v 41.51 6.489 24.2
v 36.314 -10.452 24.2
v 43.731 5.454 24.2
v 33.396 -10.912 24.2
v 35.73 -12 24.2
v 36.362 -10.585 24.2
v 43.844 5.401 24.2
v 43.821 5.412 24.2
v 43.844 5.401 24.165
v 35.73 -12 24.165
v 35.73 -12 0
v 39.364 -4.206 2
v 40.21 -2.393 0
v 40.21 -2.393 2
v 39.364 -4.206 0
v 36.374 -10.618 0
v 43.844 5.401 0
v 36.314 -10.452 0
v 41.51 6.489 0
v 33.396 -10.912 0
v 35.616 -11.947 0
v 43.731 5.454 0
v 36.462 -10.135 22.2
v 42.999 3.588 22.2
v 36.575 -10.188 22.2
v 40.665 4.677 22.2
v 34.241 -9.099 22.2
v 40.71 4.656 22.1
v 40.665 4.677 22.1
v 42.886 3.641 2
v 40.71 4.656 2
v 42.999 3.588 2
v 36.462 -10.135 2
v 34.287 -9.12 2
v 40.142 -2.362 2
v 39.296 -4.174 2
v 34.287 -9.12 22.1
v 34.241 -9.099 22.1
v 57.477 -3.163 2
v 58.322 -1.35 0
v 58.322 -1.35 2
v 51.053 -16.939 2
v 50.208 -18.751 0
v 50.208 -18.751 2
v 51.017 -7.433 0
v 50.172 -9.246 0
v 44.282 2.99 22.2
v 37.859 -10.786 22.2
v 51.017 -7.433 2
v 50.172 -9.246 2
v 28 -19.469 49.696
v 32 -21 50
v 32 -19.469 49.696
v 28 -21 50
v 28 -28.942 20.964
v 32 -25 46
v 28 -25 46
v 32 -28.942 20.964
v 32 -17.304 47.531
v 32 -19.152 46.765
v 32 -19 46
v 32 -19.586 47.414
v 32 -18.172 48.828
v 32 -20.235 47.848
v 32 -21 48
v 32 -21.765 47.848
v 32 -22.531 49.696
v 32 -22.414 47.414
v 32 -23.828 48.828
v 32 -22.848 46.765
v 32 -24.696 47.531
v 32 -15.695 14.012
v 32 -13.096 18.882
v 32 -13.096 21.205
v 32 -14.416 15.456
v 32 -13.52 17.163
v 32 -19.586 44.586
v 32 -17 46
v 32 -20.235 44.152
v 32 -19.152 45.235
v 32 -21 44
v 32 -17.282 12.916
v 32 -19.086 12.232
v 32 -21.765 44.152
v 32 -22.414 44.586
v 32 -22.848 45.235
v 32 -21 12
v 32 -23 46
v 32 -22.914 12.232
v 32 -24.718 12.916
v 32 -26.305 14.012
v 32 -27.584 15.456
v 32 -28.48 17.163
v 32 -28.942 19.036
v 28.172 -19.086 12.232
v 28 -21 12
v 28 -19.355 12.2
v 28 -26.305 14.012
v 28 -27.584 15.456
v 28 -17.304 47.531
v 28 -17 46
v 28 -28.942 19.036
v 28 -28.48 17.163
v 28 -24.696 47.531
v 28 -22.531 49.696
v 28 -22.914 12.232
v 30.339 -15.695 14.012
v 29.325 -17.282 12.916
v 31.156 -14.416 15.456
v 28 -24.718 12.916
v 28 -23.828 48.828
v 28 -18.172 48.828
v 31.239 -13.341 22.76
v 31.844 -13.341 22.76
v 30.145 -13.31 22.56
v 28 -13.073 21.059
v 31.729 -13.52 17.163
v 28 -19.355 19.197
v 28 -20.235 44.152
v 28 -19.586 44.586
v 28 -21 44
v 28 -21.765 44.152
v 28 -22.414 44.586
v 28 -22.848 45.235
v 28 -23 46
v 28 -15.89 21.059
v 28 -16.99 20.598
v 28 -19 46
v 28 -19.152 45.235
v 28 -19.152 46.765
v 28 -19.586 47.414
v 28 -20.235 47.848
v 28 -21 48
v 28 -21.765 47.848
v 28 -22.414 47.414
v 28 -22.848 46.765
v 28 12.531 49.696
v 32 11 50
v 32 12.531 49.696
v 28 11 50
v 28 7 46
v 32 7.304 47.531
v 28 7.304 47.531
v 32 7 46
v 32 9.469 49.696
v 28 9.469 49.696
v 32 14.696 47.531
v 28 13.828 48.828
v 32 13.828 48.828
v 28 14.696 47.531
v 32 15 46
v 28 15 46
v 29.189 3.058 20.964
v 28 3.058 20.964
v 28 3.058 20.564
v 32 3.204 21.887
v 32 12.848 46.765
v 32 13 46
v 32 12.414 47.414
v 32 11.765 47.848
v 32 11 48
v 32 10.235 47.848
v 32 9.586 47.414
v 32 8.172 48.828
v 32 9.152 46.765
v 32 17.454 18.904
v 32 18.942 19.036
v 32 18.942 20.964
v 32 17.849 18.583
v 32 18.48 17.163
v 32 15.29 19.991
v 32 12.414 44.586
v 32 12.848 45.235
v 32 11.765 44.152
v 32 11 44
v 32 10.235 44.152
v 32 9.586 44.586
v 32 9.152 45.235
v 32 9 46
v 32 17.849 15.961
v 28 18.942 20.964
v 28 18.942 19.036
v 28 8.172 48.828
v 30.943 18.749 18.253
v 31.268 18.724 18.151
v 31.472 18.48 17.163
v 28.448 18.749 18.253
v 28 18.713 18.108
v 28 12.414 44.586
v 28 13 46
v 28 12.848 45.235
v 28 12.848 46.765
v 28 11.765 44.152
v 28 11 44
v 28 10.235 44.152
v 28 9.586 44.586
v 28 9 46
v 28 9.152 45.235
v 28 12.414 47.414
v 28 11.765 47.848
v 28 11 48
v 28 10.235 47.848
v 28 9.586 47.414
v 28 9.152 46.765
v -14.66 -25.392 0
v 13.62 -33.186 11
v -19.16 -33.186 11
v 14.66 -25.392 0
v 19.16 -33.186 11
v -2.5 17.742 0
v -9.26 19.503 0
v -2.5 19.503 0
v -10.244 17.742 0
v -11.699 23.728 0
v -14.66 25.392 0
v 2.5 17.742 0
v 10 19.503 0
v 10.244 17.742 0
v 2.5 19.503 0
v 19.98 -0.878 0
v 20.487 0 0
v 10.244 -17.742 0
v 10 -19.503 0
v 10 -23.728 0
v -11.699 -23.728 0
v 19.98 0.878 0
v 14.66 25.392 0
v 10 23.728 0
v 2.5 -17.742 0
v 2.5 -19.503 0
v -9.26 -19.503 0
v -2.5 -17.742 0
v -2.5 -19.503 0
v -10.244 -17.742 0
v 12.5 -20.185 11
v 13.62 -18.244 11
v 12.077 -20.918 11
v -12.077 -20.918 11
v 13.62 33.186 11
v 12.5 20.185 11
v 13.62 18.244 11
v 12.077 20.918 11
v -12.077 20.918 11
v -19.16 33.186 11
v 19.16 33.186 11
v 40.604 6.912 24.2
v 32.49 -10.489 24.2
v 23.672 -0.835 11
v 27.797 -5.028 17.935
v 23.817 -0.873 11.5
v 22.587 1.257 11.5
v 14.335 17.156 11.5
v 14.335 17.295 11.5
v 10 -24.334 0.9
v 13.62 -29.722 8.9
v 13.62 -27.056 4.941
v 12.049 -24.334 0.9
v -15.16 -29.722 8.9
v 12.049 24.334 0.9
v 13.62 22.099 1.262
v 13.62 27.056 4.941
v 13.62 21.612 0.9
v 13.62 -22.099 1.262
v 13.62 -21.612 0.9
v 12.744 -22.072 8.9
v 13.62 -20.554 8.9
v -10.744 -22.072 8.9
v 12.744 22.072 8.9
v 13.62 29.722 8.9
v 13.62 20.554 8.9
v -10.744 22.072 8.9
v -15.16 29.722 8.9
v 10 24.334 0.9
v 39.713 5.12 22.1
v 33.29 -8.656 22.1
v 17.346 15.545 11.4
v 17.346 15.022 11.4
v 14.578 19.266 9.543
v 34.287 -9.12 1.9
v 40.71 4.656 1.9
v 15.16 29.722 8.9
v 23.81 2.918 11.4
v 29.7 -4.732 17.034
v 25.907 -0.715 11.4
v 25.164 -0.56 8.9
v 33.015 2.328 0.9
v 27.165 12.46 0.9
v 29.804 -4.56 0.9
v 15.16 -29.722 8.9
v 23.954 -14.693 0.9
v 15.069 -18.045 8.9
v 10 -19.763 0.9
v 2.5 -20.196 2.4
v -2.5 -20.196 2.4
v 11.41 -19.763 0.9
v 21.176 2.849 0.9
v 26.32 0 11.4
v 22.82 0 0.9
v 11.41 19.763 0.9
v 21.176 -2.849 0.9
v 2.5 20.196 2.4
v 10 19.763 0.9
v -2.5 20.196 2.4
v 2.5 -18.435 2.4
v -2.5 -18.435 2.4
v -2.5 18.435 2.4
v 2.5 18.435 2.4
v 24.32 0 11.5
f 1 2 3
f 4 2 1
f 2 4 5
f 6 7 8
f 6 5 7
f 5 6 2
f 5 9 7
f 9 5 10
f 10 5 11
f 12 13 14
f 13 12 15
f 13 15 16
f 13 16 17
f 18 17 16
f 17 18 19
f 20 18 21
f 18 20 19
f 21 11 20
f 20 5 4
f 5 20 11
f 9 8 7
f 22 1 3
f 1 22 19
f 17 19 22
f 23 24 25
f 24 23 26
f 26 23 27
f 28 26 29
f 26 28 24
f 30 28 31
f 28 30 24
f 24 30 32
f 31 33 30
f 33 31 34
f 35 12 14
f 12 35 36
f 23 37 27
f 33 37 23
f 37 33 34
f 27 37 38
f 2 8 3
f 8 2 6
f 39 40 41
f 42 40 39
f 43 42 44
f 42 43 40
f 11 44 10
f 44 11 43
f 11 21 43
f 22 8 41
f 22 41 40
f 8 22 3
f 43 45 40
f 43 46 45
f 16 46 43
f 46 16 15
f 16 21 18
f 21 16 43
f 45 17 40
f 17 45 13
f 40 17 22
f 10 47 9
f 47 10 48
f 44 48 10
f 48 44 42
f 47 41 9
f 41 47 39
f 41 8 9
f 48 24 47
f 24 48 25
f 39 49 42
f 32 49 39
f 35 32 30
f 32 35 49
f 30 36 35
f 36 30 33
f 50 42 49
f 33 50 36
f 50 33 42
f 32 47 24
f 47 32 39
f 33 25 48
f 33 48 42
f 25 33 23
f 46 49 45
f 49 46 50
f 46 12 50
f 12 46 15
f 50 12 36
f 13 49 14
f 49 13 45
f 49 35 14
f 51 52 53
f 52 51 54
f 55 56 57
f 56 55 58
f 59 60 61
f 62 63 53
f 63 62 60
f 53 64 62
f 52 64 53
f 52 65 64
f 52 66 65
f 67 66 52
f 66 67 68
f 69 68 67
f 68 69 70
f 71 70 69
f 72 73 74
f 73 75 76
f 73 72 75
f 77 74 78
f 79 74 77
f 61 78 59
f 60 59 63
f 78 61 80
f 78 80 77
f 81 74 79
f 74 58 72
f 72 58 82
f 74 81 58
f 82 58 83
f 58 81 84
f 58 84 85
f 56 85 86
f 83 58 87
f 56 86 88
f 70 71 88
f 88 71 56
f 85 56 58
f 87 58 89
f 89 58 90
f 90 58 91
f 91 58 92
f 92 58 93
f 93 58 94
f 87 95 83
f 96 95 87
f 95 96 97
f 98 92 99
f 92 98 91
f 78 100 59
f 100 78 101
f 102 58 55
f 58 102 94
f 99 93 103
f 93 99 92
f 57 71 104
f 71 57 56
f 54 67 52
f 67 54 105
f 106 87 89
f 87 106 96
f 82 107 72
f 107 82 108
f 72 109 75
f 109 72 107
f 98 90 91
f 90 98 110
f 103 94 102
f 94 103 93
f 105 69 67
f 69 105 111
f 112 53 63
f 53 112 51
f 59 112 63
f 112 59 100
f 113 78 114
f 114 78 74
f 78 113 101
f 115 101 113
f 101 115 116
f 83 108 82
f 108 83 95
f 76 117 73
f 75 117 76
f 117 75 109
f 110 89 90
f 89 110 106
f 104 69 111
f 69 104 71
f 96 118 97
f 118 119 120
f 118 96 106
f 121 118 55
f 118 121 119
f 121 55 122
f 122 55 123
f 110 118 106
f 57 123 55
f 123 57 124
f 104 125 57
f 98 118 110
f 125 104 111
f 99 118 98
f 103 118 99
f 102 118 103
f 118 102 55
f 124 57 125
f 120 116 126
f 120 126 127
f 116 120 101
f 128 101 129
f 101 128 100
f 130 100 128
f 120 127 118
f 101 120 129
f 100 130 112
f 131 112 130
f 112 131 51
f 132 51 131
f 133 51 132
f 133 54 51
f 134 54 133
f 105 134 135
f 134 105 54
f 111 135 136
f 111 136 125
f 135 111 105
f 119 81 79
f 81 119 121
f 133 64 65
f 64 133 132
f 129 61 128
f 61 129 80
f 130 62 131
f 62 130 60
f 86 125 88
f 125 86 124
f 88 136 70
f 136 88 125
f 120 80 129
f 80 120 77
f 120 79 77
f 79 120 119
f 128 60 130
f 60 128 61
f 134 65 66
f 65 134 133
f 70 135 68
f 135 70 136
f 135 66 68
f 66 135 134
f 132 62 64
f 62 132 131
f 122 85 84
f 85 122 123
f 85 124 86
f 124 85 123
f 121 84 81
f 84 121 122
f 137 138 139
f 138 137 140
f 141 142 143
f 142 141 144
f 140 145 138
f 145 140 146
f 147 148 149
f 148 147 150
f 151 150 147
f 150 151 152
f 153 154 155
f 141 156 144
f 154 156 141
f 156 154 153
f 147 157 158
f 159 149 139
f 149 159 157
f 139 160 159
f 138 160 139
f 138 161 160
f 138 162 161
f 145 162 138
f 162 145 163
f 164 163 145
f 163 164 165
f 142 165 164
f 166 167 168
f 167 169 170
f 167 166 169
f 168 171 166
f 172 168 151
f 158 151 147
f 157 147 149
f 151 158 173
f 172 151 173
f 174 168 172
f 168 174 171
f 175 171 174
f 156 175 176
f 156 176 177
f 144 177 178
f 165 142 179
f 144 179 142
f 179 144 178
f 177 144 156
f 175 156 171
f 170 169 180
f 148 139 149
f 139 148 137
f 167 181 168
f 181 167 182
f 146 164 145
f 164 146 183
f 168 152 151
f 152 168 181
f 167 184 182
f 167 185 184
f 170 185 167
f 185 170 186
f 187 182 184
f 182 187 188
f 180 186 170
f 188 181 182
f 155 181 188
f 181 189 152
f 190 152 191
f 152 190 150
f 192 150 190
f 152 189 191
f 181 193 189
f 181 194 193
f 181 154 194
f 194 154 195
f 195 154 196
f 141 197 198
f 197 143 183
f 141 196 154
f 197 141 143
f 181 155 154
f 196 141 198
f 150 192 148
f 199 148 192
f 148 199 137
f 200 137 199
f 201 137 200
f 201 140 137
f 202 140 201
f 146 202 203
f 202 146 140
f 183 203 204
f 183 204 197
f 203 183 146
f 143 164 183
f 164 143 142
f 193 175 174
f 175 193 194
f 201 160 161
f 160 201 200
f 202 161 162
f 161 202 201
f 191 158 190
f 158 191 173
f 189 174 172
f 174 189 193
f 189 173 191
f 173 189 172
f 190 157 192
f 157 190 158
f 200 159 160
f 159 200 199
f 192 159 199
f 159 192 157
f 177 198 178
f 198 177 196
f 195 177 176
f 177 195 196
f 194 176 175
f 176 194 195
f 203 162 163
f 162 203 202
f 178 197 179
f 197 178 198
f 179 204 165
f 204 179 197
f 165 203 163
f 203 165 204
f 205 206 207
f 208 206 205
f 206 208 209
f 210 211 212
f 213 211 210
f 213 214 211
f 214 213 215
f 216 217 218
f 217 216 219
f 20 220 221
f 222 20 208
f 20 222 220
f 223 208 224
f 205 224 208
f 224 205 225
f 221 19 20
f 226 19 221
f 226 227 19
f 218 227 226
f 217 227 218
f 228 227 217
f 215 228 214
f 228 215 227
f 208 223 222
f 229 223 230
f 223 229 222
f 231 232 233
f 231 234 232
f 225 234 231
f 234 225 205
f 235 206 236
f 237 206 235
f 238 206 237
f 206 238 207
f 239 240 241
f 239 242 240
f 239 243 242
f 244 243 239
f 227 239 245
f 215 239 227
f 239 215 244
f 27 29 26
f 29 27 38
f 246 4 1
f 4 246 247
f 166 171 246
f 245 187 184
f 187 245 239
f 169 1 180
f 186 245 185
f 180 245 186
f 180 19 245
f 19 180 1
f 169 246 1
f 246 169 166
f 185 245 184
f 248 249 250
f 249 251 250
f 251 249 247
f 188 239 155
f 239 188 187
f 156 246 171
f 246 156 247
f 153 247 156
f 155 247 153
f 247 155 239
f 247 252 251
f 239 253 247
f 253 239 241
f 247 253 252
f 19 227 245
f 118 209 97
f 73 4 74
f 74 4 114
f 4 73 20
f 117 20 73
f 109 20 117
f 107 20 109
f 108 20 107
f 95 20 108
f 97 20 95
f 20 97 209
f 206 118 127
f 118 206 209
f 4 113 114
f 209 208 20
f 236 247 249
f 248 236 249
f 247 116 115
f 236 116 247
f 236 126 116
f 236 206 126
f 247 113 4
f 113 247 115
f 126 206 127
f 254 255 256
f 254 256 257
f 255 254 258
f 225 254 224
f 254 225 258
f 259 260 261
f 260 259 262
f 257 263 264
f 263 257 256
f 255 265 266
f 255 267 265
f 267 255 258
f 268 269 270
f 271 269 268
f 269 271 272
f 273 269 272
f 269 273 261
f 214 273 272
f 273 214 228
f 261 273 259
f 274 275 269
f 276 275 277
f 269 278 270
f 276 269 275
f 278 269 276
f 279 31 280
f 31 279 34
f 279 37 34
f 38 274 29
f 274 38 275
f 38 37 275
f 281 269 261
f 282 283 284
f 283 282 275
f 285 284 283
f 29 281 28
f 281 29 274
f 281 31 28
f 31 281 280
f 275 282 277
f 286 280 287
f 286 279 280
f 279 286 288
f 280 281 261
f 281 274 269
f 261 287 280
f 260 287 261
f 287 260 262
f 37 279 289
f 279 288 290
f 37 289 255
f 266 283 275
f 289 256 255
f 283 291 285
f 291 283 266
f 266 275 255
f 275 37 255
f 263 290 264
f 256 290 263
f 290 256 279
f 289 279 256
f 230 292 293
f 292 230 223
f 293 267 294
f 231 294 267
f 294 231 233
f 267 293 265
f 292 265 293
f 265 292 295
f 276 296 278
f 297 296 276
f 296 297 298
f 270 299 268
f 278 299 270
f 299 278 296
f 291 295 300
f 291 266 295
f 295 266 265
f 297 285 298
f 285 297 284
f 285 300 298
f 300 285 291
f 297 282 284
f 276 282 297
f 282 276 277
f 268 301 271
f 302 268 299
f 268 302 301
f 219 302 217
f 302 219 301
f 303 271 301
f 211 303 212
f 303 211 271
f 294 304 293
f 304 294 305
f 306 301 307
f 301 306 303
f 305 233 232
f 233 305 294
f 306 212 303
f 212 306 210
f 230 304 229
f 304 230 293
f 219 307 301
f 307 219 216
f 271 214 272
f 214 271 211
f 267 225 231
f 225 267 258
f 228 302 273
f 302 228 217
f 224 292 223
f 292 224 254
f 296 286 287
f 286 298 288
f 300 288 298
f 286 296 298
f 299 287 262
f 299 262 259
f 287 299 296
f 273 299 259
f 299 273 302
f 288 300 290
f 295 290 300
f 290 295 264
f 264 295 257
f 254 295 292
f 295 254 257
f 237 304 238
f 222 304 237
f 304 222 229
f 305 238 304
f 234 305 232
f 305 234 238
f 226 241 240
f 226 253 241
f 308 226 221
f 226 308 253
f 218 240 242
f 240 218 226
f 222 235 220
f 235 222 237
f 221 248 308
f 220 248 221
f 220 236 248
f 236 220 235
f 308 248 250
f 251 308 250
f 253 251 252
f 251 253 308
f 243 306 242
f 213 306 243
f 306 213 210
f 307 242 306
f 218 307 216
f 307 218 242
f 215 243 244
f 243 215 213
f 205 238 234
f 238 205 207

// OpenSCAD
hot_rad = 30/2/cos(30)+1;
hotend_x=25;
fan_x = 15+5;

hotend_y=-5;

thickness = 9;
wall=2;
slop=.2;

fan_hole = (40-wall-wall)/2;
mount_drop = 10;
fan_z = fan_hole+wall;

//fan_mount();
fan_mount_blower();
//bowden_fan();
//translate([0,60,0]) cyclops_fan();

%cylinder(r=hot_rad, h=20, center=true);
%translate([-23,0,0]) cylinder(r=hot_rad, h=20, center=true);

m3_cap_rad = 4;
m3_rad = 2;
m3_nut_rad = 6.01/2+.1;

facets = 6;

module fan_mount(){
    difference(){
        union(){
            //core
            cylinder(r1=hot_rad+thickness+wall, r2=hot_rad+thickness*2+wall, h=thickness+wall, $fn=facets);
            
            hull(){
                intersection(){
                    difference(){
                        cylinder(r1=hot_rad+thickness+wall, r2=hot_rad+thickness*2+wall, h=thickness+wall, $fn=facets);
                        translate([0,0,-.5]) cylinder(r1=hot_rad+wall, r2=hot_rad+wall+wall, h=thickness+wall+1, $fn=facets);
                    }
                    translate([50+hot_rad-6.7,50,50]) cube([100,100,100], center=true);
                }
                translate([hotend_x+fan_x-5,hotend_y,fan_z]) rotate([0,90,0]) cylinder(r=fan_hole+wall, h=5);
            }
            
            hull(){
                intersection(){
                    difference(){
                        cylinder(r1=hot_rad+thickness+wall, r2=hot_rad+thickness*2+wall, h=thickness+wall, $fn=facets);
                        translate([0,0,-.5]) cylinder(r1=hot_rad+wall, r2=hot_rad+wall+wall, h=thickness+wall+1, $fn=facets);
                    }
                    translate([50+hot_rad-6.7,-50,50]) cube([100,100,100], center=true);
                }
                translate([hotend_x+fan_x-5,hotend_y,fan_z]) rotate([0,90,0]) cylinder(r=fan_hole+wall, h=5);
            }
            
            //fan mount
            translate([hotend_x+fan_x,hotend_y,fan_z]) rotate([0,90,0]){
                hull() for(i=[0:90:359]) rotate([0,0,i]) {
                    #translate([20-wall,20-wall,-wall]) cylinder(r=wall,h=wall*2, $fn=16);
                }    
            }
            
            //mounting lugs above fan
            #translate([hotend_x+fan_x,hotend_y,fan_z]) rotate([0,90,0]){
                for(i=[-16, 16]) difference(){
                    hull(){
                        translate([-16-mount_drop,i,-fan_x+3]) cylinder(r=m3_rad+wall, h=wall*2, $fn=16);
                        translate([0,i,-fan_x+3]) cylinder(r=m3_cap_rad*2, h=wall);
                    }
                    translate([-16-mount_drop,i,-fan_x+3-.1]) cylinder(r=m3_rad, h=wall*2+1, $fn=16);
                }
            }
        }
        
        //center cutout
        translate([0,0,-.5]) cylinder(r1=hot_rad+wall, r2=hot_rad+wall+wall, h=thickness+wall+1, $fn=facets);
                
        //front cutout
        translate([-(hot_rad+thickness*2+wall),0,0]) cylinder(r=hot_rad+thickness*2+wall, h=thickness+wall*10, center=true, $fn=facets);
        
        //fan holes
        translate([hotend_x+fan_x,hotend_y,fan_z]) rotate([0,90,0]){
            for(i=[-16, 16]) for(j=[-16, 16]) {
                #translate([j,i,-.1]) cylinder(r=m3_rad, h=wall+.2, $fn=16);
                translate([j,i,-wall*2-.1]) cylinder(r2=m3_nut_rad, r1=m3_nut_rad+.25, h=wall*2+.2, $fn=6);
            }
        }
        
        //air path
        translate([0,0,-.1]) difference(){
            union(){
                translate([-wall,0,0]) cylinder(r1=hot_rad+thickness, r2=hot_rad+thickness*2-wall, h=thickness, $fn=facets);
                
                hull(){
                    intersection(){
                        difference(){
                            translate([-wall,0,0]) cylinder(r1=hot_rad+thickness, r2=hot_rad+thickness*2-wall, h=thickness, $fn=facets);
                            translate([0,0,-.5]) cylinder(r1=hot_rad+wall*2, r2=hot_rad+wall*3, h=thickness+wall+1, $fn=facets);
                        }
                        translate([50+hot_rad-6.7,50,50]) cube([100,100,100], center=true);
                    }
                    translate([hotend_x+fan_x-5,hotend_y,fan_z]) rotate([0,90,0]) cylinder(r=fan_hole, h=.3);
                }
                
                hull(){
                    intersection(){
                        difference(){
                            translate([-wall,0,0]) cylinder(r1=hot_rad+thickness, r2=hot_rad+thickness*2-wall, h=thickness, $fn=facets);
                            translate([0,0,-.5]) cylinder(r1=hot_rad+wall+wall, r2=hot_rad+wall+wall+wall, h=thickness+wall+1, $fn=facets);
                        }
                        translate([50+hot_rad-6.7,-50,50]) cube([100,100,100], center=true);
                    }
                    translate([hotend_x+fan_x-5,hotend_y,fan_z]) rotate([0,90,0]) cylinder(r=fan_hole, h=.3);
                }
                
                translate([hotend_x+fan_x-5,hotend_y,fan_z]) rotate([0,90,0]) cylinder(r=fan_hole, h=wall+1+5);
            }
            cylinder(r1=hot_rad+wall+wall, r2=hot_rad+wall+wall+wall, h=thickness+wall, $fn=facets);
            translate([-(hot_rad+thickness*2),0,0]) cylinder(r=hot_rad+thickness*2+wall, h=thickness+wall*10, center=true, $fn=facets);
            translate([0,-5+hotend_y/2,0])cube([100,10,wall]);
        }
    }
}

module bowden_fan(){
    duct_w = 15+slop;
    duct_h = 20+slop;
    duct_offset=38;
    
    mount_height = 46;
    
    offset = -20;
    difference(){
        union(){
            //core
            hull(){
                cylinder(r1=hot_rad+thickness+wall, r2=hot_rad+thickness*2+wall, h=thickness+wall, $fn=facets);
                translate([offset,0,0]) cylinder(r1=hot_rad+thickness+wall, r2=hot_rad+thickness*2+wall, h=thickness+wall, $fn=facets);
            }
            
            //connection to duct
            hull(){
                intersection(){
                    cylinder(r1=hot_rad+thickness+wall, r2=hot_rad+thickness*2+wall, h=thickness+wall, $fn=facets);
                    translate([hot_rad+wall*2,0,0]) cube([1,200,200], center=true);
                }
                translate([duct_offset,duct_jut,duct_h/2+wall]) rotate([0,0,duct_angle]) cube([1,duct_w+wall*2, duct_h+wall*2], center=true);
            }
            
            //the duct connector
            translate([duct_offset,duct_jut,0]) rotate([0,0,duct_angle]) duct();
            
            //mounting lugs
           for(i=[10,-20,-40]) difference(){
                translate([i,hot_rad+wall*2,0]) hull(){
                    translate([5,0,thickness]) rotate([90,0,0]) cylinder(r=m3_cap_rad+wall*2, h=wall, center=true);
                    translate([0,0,mount_height]) rotate([90,0,0]) cylinder(r=m3_cap_rad+wall, h=wall, center=true);
                }
                
                //mounting holes up top
                translate([i,hot_rad+wall*2,mount_height]) rotate([90,0,0]) cylinder(r=m3_rad+slop, h=20, center=true);
            }
        }
        
        //connection to duct airflow
        hull(){
            intersection(){
                translate([0,0,wall]) cylinder(r1=hot_rad+thickness, r2=hot_rad+thickness*2, h=thickness-wall, $fn=facets);
                translate([hot_rad+wall*3,0,0]) cube([1,200,200], center=true);
            }
            translate([duct_offset,duct_jut,duct_h/2+wall]) rotate([0,0,duct_angle]) cube([1.2,duct_w, duct_h], center=true);
        }
        
        //center cutout
        translate([0,0,-.5]) hull(){
            cylinder(r1=hot_rad+wall, r2=hot_rad+wall*3, h=thickness+wall+1, $fn=facets);
            translate([2*offset,0,0]) cylinder(r1=hot_rad+wall, r2=hot_rad+wall*3, h=thickness+wall+1, $fn=facets);
        }
        
        //air path
        difference(){
            //core
            translate([0,0,-.1]) hull(){
                cylinder(r1=hot_rad+thickness, r2=hot_rad+thickness*2-wall, h=thickness, $fn=facets);
                translate([offset+wall,0,0]) cylinder(r1=hot_rad+thickness, r2=hot_rad+thickness*2-wall, h=thickness, $fn=facets);
            }
            
            //keep the center walls in place
            translate([0,0,-.5]) hull(){
                cylinder(r1=hot_rad+wall*2, r2=hot_rad+wall*4, h=thickness+wall+1, $fn=facets);
                translate([2*offset,0,0]) cylinder(r1=hot_rad+wall*2, r2=hot_rad+wall*4, h=thickness+wall+1, $fn=facets);
            }
            
            //bottom on the near side
            translate([10,0,-.5]) cylinder(r1=hot_rad+wall*2, r2=hot_rad+wall*2.5, h=wall+.5, $fn=facets);
        }
    }
}

module cyclops_fan(){
    duct_w = 15+slop;
    duct_h = 20+slop;
    duct_offset=38;
    
    mount_height = 46-1.5;
    mount_offset = 10;
    
    offset = -11;
    difference(){
        union(){
            //core
            hull(){
                cylinder(r1=hot_rad+thickness+wall, r2=hot_rad+thickness*2+wall, h=thickness+wall, $fn=facets);
                translate([offset,0,0]) cylinder(r1=hot_rad+thickness+wall, r2=hot_rad+thickness*2+wall, h=thickness+wall, $fn=facets);
            }
            
            //connection to duct
            #hull(){
                intersection(){
                    cylinder(r1=hot_rad+thickness+wall, r2=hot_rad+thickness*2+wall, h=thickness+wall, $fn=facets);
                    translate([hot_rad+wall*2,0,0]) cube([1,200,200], center=true);
                }
                translate([duct_offset,duct_jut,duct_h/2+wall]) rotate([0,0,duct_angle]) cube([1,duct_w+wall*2, duct_h+wall*2], center=true);
            }
            
            //the duct connector
            translate([duct_offset,duct_jut,0]) rotate([0,0,duct_angle]) duct();
            
            //mounting lugs
           for(i=[10-mount_offset,-20-mount_offset]) difference(){
                translate([i,hot_rad+wall*2,0]) hull(){
                    translate([5,0,thickness]) rotate([90,0,0]) cylinder(r=m3_cap_rad+wall*2, h=wall, center=true);
                    translate([0,0,mount_height]) rotate([90,0,0]) cylinder(r=m3_cap_rad+wall, h=wall, center=true);
                }
                
                //mounting holes up top
                translate([i,hot_rad+wall*2,mount_height]) rotate([90,0,0]) cylinder(r=m3_rad+slop, h=20, center=true);
            }
        }
        
        //connection to duct airflow
        hull(){
            intersection(){
                translate([0,0,wall]) cylinder(r1=hot_rad+thickness, r2=hot_rad+thickness*2, h=thickness-wall, $fn=facets);
                translate([hot_rad+wall*3,0,0]) cube([1,200,200], center=true);
            }
            translate([duct_offset,duct_jut,duct_h/2+wall]) rotate([0,0,duct_angle]) cube([1.2,duct_w, duct_h], center=true);
        }
        
        //center cutout
        translate([0,0,-.5]) hull(){
            cylinder(r1=hot_rad+wall, r2=hot_rad+wall*3, h=thickness+wall+1, $fn=facets);
            translate([5*offset,0,0]) cylinder(r1=hot_rad+wall, r2=hot_rad+wall*3, h=thickness+wall+1, $fn=facets);
        }
        
        //air path
        difference(){
            //core
            translate([0,0,-.1]) hull(){
                cylinder(r1=hot_rad+thickness, r2=hot_rad+thickness*2-wall, h=thickness, $fn=facets);
                translate([offset+wall,0,0]) cylinder(r1=hot_rad+thickness, r2=hot_rad+thickness*2-wall, h=thickness, $fn=facets);
            }
            
            //keep the center walls in place
            translate([0,0,-.5]) hull(){
                cylinder(r1=hot_rad+wall*2, r2=hot_rad+wall*4, h=thickness+wall+1, $fn=facets);
                translate([5*offset,0,0]) cylinder(r1=hot_rad+wall*2, r2=hot_rad+wall*4, h=thickness+wall+1, $fn=facets);
            }
            
            //bottom on the near side
            translate([10,0,-.5]) cylinder(r1=hot_rad+wall*2, r2=hot_rad+wall*2.5, h=wall+.5, $fn=facets);
        }
    }
}

module fan_mount_blower(){
    duct_w = 15+slop;
    duct_h = 20+slop;
    //duct_offset=38;

// Rakish    
    duct_jut = -7+5;
    duct_angle = -25;
    duct_extend = 3;
    fan_x = 15+5+10+10+5-8;
    tongue_width = hot_rad*3;

// Longer, lower angle   
//    duct_jut = -5;
//    duct_angle = -10;
//    duct_extend = 8;
//    fan_x = 8+15+5+10+10+5-8;
//    tongue_width = 11;
    
    difference(){
        union(){
            //core
            cylinder(r1=hot_rad+thickness+wall, r2=hot_rad+thickness*2+wall, h=thickness+wall, $fn=facets);
            
            //rear duct transition
            hull(){
                intersection(){
                    difference(){
                        cylinder(r1=hot_rad+thickness+wall, r2=hot_rad+thickness*2+wall, h=thickness+wall, $fn=facets);
                        translate([0,0,-.5]) cylinder(r1=hot_rad+wall, r2=hot_rad+wall*3, h=thickness+wall+1, $fn=facets);
                    }
                    translate([50+hot_rad-6.7+wall,50,50]) cube([100,100,100], center=true);
                }
                
                //this is the duct!
                translate([fan_x,duct_jut,duct_h/2+wall]) rotate([0,0,duct_angle]) cube([1,duct_w+wall*2, duct_h+wall*2], center=true);
                
                //%translate([fan_x,duct_jut,duct_h/2+wall]) rotate([0,0,duct_angle]) translate([25,0,0]) cube([50,15,50], center=true);
            }
            
            //front duct transition
            hull(){
                intersection(){
                    difference(){
                        cylinder(r1=hot_rad+thickness+wall, r2=hot_rad+thickness*2+wall, h=thickness+wall, $fn=facets);
                        translate([0,0,-.5]) cylinder(r1=hot_rad+wall, r2=hot_rad+wall*3, h=thickness+wall+1, $fn=facets);
                    }
                      translate([50+hot_rad-6.7+wall,-50,50]) cube([100,100,100], center=true);
                }
                //this is the duct!
                translate([fan_x,duct_jut,duct_h/2+wall]) rotate([0,0,duct_angle]) cube([1,duct_w+wall*2, duct_h+wall*2], center=true);
            }
            
            //the duct connector
            translate([fan_x,duct_jut,0]) rotate([0,0,duct_angle]) {
                translate([duct_extend/2,0,duct_h/2+wall]) difference(){
                    cube([duct_extend*1.05, duct_w+wall*2, duct_h+wall*2], center=true);
                    cube([duct_extend*1.1, duct_w, duct_h], center=true);
                }
                translate([duct_extend,0,0]) duct_angle(angle=0);
            }
            
            //mounting lugs above fan
            translate([hotend_x+fan_x,hotend_y,fan_z]) rotate([0,90,0]){
                for(i=[-16, 16]) difference(){
                    hull(){
                        translate([-16-mount_drop,i,-fan_x+3]) cylinder(r=m3_rad+wall, h=wall*2, $fn=16);
                        translate([0,i,-fan_x+3]) cylinder(r=m3_cap_rad*2, h=wall*2);
                    }
                    translate([-16-mount_drop,i,-fan_x+3-.1]) cylinder(r=m3_rad, h=wall*2+1, $fn=16);
                }
            }
        }
        
        //center cutout
        translate([0,0,-.5]) cylinder(r1=hot_rad+wall, r2=hot_rad+wall*3, h=thickness+wall+1, $fn=facets);
        
        
        
                
        //front cutout
        translate([-(hot_rad+thickness*2+wall),0,0]) cylinder(r=hot_rad+thickness*2+wall, h=thickness+wall*10, center=true, $fn=facets);
        
        //air path
        translate([0,0,-.1]) difference(){
            union(){
                translate([-wall,0,0]) cylinder(r1=hot_rad+thickness, r2=hot_rad+thickness*2-wall, h=thickness, $fn=facets);
                
                //rear air path
                hull(){
                    intersection(){
                        difference(){
                            translate([-wall,0,0]) cylinder(r1=hot_rad+thickness, r2=hot_rad+thickness*2-wall, h=thickness, $fn=facets);
                            translate([0,0,-.5]) cylinder(r1=hot_rad+wall*2, r2=hot_rad+wall*4, h=thickness+wall+1, $fn=facets);
                        }
                        translate([50+hot_rad-6.7+wall,50,50]) cube([100,100,100], center=true);
                    }
                    
                    //this is the duct!
                    translate([fan_x,duct_jut,duct_h/2+wall]) rotate([0,0,duct_angle]) cube([1.1,duct_w, duct_h], center=true);
                }
                
                hull(){
                    intersection(){
                        difference(){
                            translate([-wall,0,0]) cylinder(r1=hot_rad+thickness, r2=hot_rad+thickness*2-wall, h=thickness, $fn=facets);
                            translate([0,0,-.5]) cylinder(r1=hot_rad+wall*2, r2=hot_rad+wall*4, h=thickness+wall+1, $fn=facets);
                        }
                        translate([50+hot_rad-6.7+wall,-50,50]) cube([100,100,100], center=true);
                    }
                    
                    //this is the duct!
                    translate([fan_x,duct_jut,duct_h/2+wall]) rotate([0,0,duct_angle]) cube([1.1,duct_w, duct_h], center=true);
                }
                
                //translate([hotend_x+fan_x-5,hotend_y,fan_z]) rotate([0,90,0]) cylinder(r=fan_hole, h=wall+1+5);
            }
            
            //cylinder(r1=hot_rad+wall+wall, r2=hot_rad+wall+wall+wall, h=thickness+wall, $fn=facets);
            difference(){
                                translate([0,0,-.5]) cylinder(r1=hot_rad+wall+wall, r2=hot_rad+wall*4, h=thickness+wall+1, $fn=facets);
                                //this adds some holes to direct air straight into the hotend
                                for(i=[90:360/6:109]) rotate([0,0,i]) {
                                    cube([100,5,5],center=true);
                                }
                            }
                            
            translate([-(hot_rad+thickness*2),0,0]) cylinder(r=hot_rad+thickness*2+wall, h=thickness+wall*10, center=true, $fn=facets);
            //an extra tongue for strength
            translate([35,0,0])cube([50,tongue_width,wall], center=true);
        }
    }
}

module duct(){
    duct_w = 15+slop;
    duct_h = 20+slop;
    rad = 20;
    
    translate([0,0,rad+wall+duct_h/2]) rotate([-90,0,0]) union(){
        intersection(){
            rotate_extrude(angle = 90, convexity = 2){
                translate([rad,0,0])
                difference(){
                    square([duct_h+wall*2, duct_w+wall*2], center=true);
                    square([duct_h, duct_w], center=true);
                }
            }
            translate([0,0,-100]) cube([200,200,200]);
        }
        
        translate([rad,0,0]) rotate([90,0,0]) translate([0,0,8]) difference(){
            hull(){
                translate([0,0,-8]) cube([duct_h+wall*2,duct_w+wall*2,.1], center=true);
                #translate([duct_h/2+wall/2,0,8]) cube([wall,duct_w+wall*2,.1], center=true);
            }
            
            //hollow center
            cube([duct_h,duct_w,16.3], center=true);
            
            //slot for the clip
            translate([wall+1,0,(12-16)/2]) cube([duct_h+wall*2,2,12], center=true);
        }
        
    }
}

module duct_angle(angle=30){
    duct_w = 15+slop;
    duct_h = 20+slop;
    rad = 20;
    
    translate([0,0,rad+wall+duct_h/2]) rotate([-90,0,0]) union(){
        intersection(){
            rotate_extrude(angle = 45, convexity = 2){
                translate([rad,0,0])
                difference(){
                    square([duct_h+wall*2, duct_w+wall*2], center=true);
                    square([duct_h, duct_w], center=true);
                }
            }
            translate([0,0,-100]) cube([200,200,200]);
            translate([0,0,-100]) rotate([0,0,90-angle]) cube([200,200,200]);
        }
        
        rotate([0,0,90-angle]) translate([rad,0,0]) rotate([90,0,0]) translate([0,0,8]) difference(){
            hull(){
                translate([0,0,-8]) cube([duct_h+wall*2,duct_w+wall*2,.1], center=true);
                translate([duct_h/2+wall/2,0,8]) cube([wall,duct_w+wall*2,.1], center=true);
            }
            
            //hollow center
            cube([duct_h,duct_w,16.3], center=true);
            
            //slot for the clip
            translate([wall+1,0,(12-16)/2]) cube([duct_h+wall*2,2,12], center=true);
        }
        
    }
}
